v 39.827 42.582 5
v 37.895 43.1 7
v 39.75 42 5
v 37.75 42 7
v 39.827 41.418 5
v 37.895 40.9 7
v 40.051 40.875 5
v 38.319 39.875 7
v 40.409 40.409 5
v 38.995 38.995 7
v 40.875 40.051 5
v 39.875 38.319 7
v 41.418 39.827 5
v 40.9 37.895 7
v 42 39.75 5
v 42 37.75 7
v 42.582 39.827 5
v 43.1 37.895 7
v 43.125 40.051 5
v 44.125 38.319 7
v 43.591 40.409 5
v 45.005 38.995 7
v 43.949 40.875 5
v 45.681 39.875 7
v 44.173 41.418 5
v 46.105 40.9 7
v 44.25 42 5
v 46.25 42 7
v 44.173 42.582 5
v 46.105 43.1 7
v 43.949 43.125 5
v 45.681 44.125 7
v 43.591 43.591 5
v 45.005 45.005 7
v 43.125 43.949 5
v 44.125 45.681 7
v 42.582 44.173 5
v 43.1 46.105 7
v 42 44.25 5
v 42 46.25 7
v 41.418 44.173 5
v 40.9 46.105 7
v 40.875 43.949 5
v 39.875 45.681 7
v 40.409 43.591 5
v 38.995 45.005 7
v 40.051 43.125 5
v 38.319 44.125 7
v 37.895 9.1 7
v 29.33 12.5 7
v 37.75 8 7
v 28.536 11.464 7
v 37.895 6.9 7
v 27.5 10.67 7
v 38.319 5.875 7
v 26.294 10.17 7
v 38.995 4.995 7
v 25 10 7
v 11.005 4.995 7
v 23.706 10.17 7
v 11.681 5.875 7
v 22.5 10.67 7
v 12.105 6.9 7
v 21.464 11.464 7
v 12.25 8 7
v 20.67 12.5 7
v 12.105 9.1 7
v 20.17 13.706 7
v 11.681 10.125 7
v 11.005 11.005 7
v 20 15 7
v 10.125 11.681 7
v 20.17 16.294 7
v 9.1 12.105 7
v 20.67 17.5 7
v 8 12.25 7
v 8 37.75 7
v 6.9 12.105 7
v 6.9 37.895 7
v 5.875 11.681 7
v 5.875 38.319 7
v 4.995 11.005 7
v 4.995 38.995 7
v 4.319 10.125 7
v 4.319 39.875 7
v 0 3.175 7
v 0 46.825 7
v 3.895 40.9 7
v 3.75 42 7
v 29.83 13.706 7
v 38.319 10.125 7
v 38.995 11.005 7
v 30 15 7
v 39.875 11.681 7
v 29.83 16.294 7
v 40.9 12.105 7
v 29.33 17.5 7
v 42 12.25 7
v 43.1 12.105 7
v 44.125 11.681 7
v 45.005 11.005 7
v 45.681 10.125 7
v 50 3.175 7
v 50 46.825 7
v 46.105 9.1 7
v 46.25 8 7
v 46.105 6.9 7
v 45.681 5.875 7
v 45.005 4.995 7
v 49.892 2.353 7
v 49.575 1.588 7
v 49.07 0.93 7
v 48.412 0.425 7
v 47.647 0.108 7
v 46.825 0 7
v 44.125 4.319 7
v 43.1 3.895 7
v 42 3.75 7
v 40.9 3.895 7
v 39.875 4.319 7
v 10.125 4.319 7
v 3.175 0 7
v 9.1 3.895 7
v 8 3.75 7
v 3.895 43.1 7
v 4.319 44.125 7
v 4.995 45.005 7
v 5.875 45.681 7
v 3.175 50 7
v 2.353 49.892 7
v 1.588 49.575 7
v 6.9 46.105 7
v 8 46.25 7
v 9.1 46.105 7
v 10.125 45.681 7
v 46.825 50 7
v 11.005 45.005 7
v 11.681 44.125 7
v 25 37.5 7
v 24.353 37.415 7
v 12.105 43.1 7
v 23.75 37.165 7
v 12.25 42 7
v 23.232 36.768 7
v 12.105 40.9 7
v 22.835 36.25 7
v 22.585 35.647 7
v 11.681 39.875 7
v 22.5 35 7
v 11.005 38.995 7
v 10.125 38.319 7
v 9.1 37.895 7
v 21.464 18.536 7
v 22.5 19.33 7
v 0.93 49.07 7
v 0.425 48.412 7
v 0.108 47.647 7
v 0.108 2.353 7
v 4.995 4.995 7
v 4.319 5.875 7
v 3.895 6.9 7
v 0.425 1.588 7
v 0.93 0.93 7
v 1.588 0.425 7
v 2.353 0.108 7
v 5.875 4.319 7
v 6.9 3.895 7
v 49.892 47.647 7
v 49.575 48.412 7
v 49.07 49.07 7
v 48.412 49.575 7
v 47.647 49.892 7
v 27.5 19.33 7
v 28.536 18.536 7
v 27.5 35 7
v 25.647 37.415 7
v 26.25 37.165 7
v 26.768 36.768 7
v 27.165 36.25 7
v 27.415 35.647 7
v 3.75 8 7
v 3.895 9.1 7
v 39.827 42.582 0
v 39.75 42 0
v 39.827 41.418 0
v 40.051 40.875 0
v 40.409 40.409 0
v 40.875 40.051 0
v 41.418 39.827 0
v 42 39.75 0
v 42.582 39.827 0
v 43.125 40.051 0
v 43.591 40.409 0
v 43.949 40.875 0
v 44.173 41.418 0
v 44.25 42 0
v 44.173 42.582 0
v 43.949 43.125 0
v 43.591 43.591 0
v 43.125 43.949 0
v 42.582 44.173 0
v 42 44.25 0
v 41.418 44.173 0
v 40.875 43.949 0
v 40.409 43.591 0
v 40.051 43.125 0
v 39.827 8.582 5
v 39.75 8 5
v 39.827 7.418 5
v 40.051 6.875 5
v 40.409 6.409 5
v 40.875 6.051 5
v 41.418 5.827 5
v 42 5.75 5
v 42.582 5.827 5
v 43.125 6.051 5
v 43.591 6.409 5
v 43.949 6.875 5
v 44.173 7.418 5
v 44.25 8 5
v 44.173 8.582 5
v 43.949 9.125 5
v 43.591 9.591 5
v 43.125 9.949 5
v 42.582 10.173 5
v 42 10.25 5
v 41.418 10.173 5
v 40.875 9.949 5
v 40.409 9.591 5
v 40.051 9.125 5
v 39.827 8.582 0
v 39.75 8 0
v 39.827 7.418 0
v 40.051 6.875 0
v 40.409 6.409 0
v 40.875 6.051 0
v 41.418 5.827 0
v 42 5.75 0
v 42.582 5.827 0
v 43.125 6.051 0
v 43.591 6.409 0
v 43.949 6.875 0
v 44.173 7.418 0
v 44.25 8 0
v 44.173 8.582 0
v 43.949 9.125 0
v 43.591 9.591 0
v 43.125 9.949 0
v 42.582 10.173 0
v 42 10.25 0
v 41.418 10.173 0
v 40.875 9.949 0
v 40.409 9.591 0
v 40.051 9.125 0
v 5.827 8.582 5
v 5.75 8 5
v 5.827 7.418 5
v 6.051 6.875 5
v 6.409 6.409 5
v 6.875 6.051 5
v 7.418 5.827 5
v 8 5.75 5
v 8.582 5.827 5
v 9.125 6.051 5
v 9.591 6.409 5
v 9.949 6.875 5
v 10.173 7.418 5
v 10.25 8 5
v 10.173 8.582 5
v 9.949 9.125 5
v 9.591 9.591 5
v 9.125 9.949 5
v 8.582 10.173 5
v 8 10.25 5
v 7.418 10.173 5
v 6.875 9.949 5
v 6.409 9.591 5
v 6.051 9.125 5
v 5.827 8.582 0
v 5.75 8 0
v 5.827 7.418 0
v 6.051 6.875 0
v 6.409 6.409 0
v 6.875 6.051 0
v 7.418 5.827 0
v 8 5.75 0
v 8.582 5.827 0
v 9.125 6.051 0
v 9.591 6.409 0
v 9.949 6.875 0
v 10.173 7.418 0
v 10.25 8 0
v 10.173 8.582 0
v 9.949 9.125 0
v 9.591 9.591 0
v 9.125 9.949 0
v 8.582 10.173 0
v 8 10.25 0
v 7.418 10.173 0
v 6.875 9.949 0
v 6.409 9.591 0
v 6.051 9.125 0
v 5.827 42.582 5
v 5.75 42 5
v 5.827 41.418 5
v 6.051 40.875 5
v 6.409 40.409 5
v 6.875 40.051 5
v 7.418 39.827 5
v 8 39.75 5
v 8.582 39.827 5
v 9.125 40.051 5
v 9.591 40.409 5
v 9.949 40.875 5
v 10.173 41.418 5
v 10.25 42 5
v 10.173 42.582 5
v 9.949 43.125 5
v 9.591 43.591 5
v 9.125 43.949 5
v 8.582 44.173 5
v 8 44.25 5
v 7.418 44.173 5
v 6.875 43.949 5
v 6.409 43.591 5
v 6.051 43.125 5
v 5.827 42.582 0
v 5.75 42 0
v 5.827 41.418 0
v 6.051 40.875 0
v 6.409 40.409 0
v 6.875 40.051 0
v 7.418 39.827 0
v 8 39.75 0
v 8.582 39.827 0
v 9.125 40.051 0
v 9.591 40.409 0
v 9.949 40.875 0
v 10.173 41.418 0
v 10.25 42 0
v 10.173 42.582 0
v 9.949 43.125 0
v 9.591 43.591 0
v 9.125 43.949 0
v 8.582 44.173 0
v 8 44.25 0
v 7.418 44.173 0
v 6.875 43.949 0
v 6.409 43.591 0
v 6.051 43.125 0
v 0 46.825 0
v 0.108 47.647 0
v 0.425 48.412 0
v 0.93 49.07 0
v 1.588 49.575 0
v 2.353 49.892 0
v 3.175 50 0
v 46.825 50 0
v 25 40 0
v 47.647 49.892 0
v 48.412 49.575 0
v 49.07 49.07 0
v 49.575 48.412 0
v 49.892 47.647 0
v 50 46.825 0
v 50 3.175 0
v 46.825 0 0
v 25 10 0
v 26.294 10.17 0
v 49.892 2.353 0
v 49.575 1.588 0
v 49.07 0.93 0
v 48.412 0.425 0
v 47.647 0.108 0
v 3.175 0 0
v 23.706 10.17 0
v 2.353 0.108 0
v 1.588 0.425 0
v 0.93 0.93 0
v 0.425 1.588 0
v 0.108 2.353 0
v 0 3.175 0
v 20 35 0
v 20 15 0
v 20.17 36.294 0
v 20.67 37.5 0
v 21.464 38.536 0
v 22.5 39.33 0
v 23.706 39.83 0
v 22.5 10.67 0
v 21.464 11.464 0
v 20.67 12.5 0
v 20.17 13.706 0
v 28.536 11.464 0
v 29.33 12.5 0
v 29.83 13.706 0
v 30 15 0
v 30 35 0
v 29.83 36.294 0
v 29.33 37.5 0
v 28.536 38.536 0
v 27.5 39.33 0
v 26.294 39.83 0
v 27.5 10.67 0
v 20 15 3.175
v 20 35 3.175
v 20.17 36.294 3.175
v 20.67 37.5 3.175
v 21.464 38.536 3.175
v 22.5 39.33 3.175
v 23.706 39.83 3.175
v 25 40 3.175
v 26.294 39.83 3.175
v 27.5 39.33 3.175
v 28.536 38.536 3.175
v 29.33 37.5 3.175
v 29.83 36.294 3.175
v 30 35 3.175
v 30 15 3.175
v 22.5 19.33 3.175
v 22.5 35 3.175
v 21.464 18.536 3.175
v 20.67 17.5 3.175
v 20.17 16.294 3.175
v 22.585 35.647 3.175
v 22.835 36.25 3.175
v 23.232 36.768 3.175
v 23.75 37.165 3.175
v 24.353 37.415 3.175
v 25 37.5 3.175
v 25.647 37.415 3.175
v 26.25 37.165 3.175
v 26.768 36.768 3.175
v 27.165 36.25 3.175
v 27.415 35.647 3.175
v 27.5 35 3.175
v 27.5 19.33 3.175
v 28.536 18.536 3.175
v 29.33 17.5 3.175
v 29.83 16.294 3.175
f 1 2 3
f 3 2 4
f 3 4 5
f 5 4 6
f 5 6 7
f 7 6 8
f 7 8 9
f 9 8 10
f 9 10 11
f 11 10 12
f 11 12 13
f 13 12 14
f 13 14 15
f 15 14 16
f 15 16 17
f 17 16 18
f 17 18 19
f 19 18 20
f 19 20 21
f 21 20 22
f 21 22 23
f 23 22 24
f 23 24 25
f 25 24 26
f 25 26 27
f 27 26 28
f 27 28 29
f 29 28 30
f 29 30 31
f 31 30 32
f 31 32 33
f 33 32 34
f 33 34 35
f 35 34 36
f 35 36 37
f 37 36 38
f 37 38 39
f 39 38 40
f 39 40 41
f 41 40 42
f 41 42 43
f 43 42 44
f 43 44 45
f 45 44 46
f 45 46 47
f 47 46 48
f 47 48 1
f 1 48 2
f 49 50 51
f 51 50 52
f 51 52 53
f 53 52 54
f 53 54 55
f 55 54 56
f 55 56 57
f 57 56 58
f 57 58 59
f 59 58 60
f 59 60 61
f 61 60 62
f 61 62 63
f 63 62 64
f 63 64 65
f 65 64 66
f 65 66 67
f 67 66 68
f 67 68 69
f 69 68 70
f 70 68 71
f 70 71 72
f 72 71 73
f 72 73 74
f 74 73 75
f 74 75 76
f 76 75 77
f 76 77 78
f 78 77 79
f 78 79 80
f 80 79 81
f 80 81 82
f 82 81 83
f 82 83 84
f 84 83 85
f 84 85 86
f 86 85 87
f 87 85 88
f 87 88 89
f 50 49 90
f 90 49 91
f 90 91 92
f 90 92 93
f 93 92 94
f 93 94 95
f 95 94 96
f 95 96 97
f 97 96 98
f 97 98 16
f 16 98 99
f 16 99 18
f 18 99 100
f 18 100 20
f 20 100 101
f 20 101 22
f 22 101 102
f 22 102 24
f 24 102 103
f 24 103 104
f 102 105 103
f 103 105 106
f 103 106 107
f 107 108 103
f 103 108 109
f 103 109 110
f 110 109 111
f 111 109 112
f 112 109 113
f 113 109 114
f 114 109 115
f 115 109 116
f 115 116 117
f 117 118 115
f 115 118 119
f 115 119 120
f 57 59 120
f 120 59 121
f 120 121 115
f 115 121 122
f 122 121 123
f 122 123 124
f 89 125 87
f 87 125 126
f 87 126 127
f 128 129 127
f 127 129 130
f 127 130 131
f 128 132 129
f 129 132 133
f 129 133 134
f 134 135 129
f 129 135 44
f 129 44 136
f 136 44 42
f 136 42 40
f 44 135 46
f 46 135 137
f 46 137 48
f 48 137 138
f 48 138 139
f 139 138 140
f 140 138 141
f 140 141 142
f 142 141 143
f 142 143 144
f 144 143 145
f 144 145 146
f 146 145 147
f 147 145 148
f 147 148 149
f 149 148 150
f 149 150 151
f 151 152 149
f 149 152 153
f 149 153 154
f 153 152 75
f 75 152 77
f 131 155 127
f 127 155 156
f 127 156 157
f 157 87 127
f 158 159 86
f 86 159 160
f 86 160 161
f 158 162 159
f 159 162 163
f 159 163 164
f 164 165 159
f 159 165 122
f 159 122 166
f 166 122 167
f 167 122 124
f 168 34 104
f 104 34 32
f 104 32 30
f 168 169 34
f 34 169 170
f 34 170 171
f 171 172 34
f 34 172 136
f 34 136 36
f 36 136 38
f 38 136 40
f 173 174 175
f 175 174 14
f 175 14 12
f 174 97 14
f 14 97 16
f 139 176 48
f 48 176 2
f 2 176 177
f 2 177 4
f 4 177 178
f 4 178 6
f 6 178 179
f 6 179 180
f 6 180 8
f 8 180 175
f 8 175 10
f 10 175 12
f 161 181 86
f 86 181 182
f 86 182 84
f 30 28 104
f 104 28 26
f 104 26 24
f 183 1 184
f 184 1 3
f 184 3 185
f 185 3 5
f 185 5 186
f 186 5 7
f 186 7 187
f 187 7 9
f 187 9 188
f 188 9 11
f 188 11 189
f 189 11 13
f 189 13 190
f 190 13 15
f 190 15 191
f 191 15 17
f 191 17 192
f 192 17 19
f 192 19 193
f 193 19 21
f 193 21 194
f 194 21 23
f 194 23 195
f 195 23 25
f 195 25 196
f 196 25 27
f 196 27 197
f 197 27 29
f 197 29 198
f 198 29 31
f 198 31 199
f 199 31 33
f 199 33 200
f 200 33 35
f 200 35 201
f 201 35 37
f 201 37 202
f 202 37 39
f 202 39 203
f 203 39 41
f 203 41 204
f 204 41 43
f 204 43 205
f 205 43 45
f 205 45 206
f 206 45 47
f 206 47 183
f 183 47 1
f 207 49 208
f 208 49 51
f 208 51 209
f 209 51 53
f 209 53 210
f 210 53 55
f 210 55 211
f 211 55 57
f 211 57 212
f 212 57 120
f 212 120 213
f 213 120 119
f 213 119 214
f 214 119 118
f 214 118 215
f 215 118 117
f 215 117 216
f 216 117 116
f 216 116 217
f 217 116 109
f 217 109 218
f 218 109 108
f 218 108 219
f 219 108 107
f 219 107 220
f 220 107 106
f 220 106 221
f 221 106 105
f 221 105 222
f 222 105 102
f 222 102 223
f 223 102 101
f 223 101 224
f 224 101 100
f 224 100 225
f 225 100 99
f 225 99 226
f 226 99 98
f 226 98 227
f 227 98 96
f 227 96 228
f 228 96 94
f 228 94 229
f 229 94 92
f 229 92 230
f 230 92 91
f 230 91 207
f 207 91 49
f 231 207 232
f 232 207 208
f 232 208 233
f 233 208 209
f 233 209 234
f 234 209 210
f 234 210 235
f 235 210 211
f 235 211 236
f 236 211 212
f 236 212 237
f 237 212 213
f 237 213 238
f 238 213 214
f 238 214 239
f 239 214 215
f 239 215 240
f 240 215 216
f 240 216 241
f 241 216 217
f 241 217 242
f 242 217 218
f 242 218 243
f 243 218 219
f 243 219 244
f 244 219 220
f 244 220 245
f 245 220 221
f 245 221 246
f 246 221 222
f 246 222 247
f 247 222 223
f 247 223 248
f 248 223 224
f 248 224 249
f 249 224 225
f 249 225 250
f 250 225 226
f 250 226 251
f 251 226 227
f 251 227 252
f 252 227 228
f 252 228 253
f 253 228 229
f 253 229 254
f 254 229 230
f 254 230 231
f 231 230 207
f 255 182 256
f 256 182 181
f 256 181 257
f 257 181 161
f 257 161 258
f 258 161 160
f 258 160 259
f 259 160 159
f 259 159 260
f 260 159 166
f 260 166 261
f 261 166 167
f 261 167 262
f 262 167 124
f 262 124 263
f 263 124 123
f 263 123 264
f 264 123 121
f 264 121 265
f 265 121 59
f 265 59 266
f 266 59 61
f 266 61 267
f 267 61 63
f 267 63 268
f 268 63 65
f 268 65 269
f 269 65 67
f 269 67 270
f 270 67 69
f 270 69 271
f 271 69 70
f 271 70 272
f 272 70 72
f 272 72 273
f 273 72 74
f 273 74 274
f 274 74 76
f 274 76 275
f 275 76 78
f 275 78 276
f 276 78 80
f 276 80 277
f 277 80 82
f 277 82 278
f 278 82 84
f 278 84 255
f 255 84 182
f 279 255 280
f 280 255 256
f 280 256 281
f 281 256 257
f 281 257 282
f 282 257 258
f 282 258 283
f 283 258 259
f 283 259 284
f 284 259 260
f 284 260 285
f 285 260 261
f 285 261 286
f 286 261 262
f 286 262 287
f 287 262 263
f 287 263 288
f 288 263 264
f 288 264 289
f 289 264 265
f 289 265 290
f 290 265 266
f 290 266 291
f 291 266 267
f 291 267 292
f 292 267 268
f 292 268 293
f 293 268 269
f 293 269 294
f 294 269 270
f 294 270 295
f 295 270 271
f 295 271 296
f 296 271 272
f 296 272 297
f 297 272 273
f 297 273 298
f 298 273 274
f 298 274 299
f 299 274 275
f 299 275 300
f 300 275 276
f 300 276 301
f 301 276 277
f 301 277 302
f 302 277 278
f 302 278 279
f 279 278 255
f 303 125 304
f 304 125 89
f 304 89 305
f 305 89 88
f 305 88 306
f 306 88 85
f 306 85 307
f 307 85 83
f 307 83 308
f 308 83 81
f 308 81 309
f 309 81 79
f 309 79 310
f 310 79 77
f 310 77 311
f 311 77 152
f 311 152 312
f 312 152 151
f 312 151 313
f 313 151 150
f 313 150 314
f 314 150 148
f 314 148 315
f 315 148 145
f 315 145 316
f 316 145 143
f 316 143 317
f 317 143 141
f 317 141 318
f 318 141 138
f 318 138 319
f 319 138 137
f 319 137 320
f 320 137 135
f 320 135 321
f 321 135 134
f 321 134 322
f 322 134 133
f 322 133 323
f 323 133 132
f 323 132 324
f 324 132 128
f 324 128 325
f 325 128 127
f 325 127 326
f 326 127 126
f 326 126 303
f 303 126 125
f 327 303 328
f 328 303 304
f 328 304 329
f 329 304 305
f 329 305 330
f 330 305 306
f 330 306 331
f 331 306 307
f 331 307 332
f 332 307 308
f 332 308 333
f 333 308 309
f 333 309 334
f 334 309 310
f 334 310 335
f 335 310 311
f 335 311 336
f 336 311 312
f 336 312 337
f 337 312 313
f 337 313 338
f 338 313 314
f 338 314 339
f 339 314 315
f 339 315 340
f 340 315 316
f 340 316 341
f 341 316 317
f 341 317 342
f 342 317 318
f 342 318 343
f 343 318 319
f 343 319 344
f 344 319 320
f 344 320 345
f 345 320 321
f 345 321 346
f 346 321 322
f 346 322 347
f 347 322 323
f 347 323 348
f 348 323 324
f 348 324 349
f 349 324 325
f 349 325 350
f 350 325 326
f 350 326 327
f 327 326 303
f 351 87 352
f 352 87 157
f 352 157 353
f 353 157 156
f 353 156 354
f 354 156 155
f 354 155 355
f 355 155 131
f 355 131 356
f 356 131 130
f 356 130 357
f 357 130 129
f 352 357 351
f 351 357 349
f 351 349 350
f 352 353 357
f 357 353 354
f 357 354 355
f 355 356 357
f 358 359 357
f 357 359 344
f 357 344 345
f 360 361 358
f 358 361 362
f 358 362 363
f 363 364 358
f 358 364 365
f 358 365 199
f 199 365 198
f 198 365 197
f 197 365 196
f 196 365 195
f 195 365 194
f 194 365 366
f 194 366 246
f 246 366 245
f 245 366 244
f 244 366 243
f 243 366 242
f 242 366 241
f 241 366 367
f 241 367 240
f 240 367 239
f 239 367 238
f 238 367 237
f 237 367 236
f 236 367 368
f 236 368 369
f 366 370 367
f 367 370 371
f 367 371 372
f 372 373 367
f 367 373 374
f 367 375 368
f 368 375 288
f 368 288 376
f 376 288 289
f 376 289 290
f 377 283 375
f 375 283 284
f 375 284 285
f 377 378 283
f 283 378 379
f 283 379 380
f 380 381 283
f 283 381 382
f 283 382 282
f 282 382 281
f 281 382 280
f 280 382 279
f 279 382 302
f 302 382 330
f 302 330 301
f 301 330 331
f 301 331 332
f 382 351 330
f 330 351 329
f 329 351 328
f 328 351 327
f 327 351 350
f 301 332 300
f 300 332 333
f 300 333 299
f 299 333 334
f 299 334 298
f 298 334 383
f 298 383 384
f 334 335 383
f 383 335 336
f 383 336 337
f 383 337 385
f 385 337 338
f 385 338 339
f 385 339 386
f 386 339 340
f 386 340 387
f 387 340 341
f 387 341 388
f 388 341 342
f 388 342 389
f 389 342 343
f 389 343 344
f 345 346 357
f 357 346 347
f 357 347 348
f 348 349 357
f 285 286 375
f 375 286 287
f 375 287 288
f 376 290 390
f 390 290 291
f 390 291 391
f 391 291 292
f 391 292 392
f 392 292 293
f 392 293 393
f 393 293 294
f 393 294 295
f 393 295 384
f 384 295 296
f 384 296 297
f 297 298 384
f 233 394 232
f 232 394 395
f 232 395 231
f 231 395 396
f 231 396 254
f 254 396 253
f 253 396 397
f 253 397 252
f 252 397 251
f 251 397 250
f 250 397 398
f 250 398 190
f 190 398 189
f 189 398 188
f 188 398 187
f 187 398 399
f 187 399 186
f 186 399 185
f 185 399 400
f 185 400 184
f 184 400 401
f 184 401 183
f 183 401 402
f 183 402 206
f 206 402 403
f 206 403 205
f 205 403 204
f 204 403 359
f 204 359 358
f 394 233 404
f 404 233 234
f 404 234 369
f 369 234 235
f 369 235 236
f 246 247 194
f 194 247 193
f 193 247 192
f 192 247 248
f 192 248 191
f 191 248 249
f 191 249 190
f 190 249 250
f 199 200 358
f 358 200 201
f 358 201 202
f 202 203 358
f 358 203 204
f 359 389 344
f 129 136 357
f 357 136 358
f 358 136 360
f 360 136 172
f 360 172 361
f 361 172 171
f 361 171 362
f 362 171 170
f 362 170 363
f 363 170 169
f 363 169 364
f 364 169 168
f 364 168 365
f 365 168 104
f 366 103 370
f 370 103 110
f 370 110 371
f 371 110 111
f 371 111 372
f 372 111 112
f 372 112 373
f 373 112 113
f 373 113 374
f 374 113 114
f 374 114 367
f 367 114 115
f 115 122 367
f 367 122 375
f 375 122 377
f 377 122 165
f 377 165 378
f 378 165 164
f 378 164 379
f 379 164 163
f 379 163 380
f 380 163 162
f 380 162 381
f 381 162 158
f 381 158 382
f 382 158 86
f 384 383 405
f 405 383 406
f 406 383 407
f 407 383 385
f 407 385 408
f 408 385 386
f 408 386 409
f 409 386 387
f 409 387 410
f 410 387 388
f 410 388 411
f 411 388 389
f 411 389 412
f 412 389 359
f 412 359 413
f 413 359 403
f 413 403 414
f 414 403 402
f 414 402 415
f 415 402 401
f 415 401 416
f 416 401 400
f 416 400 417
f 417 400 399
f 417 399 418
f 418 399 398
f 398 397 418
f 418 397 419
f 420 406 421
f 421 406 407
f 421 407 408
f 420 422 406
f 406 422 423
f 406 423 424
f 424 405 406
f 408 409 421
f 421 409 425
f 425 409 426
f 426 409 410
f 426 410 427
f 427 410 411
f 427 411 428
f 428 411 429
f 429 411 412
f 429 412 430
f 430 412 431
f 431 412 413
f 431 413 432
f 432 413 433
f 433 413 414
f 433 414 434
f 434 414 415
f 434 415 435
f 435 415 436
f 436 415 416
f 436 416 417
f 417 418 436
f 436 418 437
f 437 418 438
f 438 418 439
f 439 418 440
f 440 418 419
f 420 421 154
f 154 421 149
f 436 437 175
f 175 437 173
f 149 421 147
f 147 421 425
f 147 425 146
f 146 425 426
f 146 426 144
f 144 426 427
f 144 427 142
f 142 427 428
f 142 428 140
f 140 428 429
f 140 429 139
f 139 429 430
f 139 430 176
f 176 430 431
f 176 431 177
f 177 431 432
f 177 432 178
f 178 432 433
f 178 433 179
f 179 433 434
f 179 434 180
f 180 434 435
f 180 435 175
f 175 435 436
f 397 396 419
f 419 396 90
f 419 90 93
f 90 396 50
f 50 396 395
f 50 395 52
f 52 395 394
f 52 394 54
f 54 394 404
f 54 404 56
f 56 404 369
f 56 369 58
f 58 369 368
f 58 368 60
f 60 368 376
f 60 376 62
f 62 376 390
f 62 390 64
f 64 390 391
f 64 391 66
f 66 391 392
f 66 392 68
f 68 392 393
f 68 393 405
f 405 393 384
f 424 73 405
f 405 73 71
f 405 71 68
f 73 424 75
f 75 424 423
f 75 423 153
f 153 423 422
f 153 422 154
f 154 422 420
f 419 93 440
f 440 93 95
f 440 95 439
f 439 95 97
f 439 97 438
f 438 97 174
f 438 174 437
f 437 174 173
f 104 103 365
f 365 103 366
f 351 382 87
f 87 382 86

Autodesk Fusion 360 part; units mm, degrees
sketch "Sketch1" plane through (0, 0, 0) normal (0, 0, 1) x (1, 0, 0)
  line L0 (0, 0) -> (50, 0)
  line L1 (50, 0) -> (50, 50)
  line L2 (50, 50) -> (0, 50)
  line L3 (0, 50) -> (0, 0)
  circle A0 centre (8, 42) radius 2.25
  line L4 (8, 42) -> (42, 42) construction
  line L5 (42, 42) -> (42, 8) construction
  line L6 (42, 8) -> (8, 8) construction
  line L7 (8, 8) -> (8, 42) construction
  circle A1 centre (8, 8) radius 2.25
  circle A2 centre (42, 42) radius 2.25
  circle A3 centre (42, 8) radius 2.25
  circle A4 centre (25, 15) radius 5
  line L8 (25, 15) -> (25, 35) construction
  circle A5 centre (25, 35) radius 5
  circle A6 centre (25, 35) radius 2.5
  circle A7 centre (25, 20) radius 2.5
  line L9 (27.5, 15) -> (27.5, 35)
  line L10 (22.5, 15) -> (22.5, 35)
  line L11 (30, 15) -> (30, 35)
  line L12 (20, 15) -> (20, 35)
  dimension "d1" = 50
  dimension "d2" = 4.5
  dimension "d3" = 8
  dimension "d4" = 8
  dimension "d5" = 8
  dimension "d6" = 8
  dimension "d7" = 4.5
  dimension "d8" = 4.5
  dimension "d9" = 4.5
  dimension "d10" = 10
  dimension "d11" = 20
  dimension "d13" = 15
  dimension "d14" = 10
  dimension "d15" = 5
  dimension "d16" = 5
  dimension "d17" = 2.5
  dimension "d18" = -2.5
  dimension "d19" = 5
  dimension "d20" = -5
extrude "Extrude1" add sketch "Sketch1" along normal blind 7 contours L0 L1 L2 L3 | A4 A5 L10 L12 | A4 A5 L9 L11 | A5 A6 L9 L10 picked at (20.8519, 34.7516)
extrude "Extrude2" cut sketch "Sketch1" along normal blind 3.175 contours A4 A5 L10 L12 | A4 A5 L9 L11 | A5 A6 L9 L10 picked at (20.8519, 34.7516)
fillet "Fillet1" radius 3.175 4 edges at (0, 0, 3.5) (50, 0, 3.5) (50, 50, 3.5) (0, 50, 3.5)
chamfer "Chamfer1" distance 2 angle 45 4 edges at (5.9023, 42.8136, 7) (5.9023, 8.8136, 7) (39.9023, 8.8136, 7) (39.9023, 42.8136, 7)
sketch "Sketch2" plane through (0, 0, 3.175) normal (0, 0, -1) x (1, 0, 0)
  line L0 (22.5, -35) -> (22.5, -19.3301)
  arc A0 (20, -15) -> (22.5, -19.3301) centre (25, -15) ccw
  line L1 (20, -15) -> (20, -35)
  arc A1 (20, -35) -> (30, -35) centre (25, -35) ccw
  line L2 (30, -35) -> (30, -15)
  arc A2 (27.5, -19.3301) -> (30, -15) centre (25, -15) ccw
  line L3 (27.5, -19.3301) -> (27.5, -35)
  arc A3 (22.5, -35) -> (27.5, -35) centre (25, -35) ccw
  line L4 (20, -35) -> (20, -15)
  arc A4 (30, -15) -> (20, -15) centre (25, -15) ccw
  line L5 (30, -15) -> (30, -35)
  arc A5 (20, -35) -> (30, -35) centre (25, -35) ccw
